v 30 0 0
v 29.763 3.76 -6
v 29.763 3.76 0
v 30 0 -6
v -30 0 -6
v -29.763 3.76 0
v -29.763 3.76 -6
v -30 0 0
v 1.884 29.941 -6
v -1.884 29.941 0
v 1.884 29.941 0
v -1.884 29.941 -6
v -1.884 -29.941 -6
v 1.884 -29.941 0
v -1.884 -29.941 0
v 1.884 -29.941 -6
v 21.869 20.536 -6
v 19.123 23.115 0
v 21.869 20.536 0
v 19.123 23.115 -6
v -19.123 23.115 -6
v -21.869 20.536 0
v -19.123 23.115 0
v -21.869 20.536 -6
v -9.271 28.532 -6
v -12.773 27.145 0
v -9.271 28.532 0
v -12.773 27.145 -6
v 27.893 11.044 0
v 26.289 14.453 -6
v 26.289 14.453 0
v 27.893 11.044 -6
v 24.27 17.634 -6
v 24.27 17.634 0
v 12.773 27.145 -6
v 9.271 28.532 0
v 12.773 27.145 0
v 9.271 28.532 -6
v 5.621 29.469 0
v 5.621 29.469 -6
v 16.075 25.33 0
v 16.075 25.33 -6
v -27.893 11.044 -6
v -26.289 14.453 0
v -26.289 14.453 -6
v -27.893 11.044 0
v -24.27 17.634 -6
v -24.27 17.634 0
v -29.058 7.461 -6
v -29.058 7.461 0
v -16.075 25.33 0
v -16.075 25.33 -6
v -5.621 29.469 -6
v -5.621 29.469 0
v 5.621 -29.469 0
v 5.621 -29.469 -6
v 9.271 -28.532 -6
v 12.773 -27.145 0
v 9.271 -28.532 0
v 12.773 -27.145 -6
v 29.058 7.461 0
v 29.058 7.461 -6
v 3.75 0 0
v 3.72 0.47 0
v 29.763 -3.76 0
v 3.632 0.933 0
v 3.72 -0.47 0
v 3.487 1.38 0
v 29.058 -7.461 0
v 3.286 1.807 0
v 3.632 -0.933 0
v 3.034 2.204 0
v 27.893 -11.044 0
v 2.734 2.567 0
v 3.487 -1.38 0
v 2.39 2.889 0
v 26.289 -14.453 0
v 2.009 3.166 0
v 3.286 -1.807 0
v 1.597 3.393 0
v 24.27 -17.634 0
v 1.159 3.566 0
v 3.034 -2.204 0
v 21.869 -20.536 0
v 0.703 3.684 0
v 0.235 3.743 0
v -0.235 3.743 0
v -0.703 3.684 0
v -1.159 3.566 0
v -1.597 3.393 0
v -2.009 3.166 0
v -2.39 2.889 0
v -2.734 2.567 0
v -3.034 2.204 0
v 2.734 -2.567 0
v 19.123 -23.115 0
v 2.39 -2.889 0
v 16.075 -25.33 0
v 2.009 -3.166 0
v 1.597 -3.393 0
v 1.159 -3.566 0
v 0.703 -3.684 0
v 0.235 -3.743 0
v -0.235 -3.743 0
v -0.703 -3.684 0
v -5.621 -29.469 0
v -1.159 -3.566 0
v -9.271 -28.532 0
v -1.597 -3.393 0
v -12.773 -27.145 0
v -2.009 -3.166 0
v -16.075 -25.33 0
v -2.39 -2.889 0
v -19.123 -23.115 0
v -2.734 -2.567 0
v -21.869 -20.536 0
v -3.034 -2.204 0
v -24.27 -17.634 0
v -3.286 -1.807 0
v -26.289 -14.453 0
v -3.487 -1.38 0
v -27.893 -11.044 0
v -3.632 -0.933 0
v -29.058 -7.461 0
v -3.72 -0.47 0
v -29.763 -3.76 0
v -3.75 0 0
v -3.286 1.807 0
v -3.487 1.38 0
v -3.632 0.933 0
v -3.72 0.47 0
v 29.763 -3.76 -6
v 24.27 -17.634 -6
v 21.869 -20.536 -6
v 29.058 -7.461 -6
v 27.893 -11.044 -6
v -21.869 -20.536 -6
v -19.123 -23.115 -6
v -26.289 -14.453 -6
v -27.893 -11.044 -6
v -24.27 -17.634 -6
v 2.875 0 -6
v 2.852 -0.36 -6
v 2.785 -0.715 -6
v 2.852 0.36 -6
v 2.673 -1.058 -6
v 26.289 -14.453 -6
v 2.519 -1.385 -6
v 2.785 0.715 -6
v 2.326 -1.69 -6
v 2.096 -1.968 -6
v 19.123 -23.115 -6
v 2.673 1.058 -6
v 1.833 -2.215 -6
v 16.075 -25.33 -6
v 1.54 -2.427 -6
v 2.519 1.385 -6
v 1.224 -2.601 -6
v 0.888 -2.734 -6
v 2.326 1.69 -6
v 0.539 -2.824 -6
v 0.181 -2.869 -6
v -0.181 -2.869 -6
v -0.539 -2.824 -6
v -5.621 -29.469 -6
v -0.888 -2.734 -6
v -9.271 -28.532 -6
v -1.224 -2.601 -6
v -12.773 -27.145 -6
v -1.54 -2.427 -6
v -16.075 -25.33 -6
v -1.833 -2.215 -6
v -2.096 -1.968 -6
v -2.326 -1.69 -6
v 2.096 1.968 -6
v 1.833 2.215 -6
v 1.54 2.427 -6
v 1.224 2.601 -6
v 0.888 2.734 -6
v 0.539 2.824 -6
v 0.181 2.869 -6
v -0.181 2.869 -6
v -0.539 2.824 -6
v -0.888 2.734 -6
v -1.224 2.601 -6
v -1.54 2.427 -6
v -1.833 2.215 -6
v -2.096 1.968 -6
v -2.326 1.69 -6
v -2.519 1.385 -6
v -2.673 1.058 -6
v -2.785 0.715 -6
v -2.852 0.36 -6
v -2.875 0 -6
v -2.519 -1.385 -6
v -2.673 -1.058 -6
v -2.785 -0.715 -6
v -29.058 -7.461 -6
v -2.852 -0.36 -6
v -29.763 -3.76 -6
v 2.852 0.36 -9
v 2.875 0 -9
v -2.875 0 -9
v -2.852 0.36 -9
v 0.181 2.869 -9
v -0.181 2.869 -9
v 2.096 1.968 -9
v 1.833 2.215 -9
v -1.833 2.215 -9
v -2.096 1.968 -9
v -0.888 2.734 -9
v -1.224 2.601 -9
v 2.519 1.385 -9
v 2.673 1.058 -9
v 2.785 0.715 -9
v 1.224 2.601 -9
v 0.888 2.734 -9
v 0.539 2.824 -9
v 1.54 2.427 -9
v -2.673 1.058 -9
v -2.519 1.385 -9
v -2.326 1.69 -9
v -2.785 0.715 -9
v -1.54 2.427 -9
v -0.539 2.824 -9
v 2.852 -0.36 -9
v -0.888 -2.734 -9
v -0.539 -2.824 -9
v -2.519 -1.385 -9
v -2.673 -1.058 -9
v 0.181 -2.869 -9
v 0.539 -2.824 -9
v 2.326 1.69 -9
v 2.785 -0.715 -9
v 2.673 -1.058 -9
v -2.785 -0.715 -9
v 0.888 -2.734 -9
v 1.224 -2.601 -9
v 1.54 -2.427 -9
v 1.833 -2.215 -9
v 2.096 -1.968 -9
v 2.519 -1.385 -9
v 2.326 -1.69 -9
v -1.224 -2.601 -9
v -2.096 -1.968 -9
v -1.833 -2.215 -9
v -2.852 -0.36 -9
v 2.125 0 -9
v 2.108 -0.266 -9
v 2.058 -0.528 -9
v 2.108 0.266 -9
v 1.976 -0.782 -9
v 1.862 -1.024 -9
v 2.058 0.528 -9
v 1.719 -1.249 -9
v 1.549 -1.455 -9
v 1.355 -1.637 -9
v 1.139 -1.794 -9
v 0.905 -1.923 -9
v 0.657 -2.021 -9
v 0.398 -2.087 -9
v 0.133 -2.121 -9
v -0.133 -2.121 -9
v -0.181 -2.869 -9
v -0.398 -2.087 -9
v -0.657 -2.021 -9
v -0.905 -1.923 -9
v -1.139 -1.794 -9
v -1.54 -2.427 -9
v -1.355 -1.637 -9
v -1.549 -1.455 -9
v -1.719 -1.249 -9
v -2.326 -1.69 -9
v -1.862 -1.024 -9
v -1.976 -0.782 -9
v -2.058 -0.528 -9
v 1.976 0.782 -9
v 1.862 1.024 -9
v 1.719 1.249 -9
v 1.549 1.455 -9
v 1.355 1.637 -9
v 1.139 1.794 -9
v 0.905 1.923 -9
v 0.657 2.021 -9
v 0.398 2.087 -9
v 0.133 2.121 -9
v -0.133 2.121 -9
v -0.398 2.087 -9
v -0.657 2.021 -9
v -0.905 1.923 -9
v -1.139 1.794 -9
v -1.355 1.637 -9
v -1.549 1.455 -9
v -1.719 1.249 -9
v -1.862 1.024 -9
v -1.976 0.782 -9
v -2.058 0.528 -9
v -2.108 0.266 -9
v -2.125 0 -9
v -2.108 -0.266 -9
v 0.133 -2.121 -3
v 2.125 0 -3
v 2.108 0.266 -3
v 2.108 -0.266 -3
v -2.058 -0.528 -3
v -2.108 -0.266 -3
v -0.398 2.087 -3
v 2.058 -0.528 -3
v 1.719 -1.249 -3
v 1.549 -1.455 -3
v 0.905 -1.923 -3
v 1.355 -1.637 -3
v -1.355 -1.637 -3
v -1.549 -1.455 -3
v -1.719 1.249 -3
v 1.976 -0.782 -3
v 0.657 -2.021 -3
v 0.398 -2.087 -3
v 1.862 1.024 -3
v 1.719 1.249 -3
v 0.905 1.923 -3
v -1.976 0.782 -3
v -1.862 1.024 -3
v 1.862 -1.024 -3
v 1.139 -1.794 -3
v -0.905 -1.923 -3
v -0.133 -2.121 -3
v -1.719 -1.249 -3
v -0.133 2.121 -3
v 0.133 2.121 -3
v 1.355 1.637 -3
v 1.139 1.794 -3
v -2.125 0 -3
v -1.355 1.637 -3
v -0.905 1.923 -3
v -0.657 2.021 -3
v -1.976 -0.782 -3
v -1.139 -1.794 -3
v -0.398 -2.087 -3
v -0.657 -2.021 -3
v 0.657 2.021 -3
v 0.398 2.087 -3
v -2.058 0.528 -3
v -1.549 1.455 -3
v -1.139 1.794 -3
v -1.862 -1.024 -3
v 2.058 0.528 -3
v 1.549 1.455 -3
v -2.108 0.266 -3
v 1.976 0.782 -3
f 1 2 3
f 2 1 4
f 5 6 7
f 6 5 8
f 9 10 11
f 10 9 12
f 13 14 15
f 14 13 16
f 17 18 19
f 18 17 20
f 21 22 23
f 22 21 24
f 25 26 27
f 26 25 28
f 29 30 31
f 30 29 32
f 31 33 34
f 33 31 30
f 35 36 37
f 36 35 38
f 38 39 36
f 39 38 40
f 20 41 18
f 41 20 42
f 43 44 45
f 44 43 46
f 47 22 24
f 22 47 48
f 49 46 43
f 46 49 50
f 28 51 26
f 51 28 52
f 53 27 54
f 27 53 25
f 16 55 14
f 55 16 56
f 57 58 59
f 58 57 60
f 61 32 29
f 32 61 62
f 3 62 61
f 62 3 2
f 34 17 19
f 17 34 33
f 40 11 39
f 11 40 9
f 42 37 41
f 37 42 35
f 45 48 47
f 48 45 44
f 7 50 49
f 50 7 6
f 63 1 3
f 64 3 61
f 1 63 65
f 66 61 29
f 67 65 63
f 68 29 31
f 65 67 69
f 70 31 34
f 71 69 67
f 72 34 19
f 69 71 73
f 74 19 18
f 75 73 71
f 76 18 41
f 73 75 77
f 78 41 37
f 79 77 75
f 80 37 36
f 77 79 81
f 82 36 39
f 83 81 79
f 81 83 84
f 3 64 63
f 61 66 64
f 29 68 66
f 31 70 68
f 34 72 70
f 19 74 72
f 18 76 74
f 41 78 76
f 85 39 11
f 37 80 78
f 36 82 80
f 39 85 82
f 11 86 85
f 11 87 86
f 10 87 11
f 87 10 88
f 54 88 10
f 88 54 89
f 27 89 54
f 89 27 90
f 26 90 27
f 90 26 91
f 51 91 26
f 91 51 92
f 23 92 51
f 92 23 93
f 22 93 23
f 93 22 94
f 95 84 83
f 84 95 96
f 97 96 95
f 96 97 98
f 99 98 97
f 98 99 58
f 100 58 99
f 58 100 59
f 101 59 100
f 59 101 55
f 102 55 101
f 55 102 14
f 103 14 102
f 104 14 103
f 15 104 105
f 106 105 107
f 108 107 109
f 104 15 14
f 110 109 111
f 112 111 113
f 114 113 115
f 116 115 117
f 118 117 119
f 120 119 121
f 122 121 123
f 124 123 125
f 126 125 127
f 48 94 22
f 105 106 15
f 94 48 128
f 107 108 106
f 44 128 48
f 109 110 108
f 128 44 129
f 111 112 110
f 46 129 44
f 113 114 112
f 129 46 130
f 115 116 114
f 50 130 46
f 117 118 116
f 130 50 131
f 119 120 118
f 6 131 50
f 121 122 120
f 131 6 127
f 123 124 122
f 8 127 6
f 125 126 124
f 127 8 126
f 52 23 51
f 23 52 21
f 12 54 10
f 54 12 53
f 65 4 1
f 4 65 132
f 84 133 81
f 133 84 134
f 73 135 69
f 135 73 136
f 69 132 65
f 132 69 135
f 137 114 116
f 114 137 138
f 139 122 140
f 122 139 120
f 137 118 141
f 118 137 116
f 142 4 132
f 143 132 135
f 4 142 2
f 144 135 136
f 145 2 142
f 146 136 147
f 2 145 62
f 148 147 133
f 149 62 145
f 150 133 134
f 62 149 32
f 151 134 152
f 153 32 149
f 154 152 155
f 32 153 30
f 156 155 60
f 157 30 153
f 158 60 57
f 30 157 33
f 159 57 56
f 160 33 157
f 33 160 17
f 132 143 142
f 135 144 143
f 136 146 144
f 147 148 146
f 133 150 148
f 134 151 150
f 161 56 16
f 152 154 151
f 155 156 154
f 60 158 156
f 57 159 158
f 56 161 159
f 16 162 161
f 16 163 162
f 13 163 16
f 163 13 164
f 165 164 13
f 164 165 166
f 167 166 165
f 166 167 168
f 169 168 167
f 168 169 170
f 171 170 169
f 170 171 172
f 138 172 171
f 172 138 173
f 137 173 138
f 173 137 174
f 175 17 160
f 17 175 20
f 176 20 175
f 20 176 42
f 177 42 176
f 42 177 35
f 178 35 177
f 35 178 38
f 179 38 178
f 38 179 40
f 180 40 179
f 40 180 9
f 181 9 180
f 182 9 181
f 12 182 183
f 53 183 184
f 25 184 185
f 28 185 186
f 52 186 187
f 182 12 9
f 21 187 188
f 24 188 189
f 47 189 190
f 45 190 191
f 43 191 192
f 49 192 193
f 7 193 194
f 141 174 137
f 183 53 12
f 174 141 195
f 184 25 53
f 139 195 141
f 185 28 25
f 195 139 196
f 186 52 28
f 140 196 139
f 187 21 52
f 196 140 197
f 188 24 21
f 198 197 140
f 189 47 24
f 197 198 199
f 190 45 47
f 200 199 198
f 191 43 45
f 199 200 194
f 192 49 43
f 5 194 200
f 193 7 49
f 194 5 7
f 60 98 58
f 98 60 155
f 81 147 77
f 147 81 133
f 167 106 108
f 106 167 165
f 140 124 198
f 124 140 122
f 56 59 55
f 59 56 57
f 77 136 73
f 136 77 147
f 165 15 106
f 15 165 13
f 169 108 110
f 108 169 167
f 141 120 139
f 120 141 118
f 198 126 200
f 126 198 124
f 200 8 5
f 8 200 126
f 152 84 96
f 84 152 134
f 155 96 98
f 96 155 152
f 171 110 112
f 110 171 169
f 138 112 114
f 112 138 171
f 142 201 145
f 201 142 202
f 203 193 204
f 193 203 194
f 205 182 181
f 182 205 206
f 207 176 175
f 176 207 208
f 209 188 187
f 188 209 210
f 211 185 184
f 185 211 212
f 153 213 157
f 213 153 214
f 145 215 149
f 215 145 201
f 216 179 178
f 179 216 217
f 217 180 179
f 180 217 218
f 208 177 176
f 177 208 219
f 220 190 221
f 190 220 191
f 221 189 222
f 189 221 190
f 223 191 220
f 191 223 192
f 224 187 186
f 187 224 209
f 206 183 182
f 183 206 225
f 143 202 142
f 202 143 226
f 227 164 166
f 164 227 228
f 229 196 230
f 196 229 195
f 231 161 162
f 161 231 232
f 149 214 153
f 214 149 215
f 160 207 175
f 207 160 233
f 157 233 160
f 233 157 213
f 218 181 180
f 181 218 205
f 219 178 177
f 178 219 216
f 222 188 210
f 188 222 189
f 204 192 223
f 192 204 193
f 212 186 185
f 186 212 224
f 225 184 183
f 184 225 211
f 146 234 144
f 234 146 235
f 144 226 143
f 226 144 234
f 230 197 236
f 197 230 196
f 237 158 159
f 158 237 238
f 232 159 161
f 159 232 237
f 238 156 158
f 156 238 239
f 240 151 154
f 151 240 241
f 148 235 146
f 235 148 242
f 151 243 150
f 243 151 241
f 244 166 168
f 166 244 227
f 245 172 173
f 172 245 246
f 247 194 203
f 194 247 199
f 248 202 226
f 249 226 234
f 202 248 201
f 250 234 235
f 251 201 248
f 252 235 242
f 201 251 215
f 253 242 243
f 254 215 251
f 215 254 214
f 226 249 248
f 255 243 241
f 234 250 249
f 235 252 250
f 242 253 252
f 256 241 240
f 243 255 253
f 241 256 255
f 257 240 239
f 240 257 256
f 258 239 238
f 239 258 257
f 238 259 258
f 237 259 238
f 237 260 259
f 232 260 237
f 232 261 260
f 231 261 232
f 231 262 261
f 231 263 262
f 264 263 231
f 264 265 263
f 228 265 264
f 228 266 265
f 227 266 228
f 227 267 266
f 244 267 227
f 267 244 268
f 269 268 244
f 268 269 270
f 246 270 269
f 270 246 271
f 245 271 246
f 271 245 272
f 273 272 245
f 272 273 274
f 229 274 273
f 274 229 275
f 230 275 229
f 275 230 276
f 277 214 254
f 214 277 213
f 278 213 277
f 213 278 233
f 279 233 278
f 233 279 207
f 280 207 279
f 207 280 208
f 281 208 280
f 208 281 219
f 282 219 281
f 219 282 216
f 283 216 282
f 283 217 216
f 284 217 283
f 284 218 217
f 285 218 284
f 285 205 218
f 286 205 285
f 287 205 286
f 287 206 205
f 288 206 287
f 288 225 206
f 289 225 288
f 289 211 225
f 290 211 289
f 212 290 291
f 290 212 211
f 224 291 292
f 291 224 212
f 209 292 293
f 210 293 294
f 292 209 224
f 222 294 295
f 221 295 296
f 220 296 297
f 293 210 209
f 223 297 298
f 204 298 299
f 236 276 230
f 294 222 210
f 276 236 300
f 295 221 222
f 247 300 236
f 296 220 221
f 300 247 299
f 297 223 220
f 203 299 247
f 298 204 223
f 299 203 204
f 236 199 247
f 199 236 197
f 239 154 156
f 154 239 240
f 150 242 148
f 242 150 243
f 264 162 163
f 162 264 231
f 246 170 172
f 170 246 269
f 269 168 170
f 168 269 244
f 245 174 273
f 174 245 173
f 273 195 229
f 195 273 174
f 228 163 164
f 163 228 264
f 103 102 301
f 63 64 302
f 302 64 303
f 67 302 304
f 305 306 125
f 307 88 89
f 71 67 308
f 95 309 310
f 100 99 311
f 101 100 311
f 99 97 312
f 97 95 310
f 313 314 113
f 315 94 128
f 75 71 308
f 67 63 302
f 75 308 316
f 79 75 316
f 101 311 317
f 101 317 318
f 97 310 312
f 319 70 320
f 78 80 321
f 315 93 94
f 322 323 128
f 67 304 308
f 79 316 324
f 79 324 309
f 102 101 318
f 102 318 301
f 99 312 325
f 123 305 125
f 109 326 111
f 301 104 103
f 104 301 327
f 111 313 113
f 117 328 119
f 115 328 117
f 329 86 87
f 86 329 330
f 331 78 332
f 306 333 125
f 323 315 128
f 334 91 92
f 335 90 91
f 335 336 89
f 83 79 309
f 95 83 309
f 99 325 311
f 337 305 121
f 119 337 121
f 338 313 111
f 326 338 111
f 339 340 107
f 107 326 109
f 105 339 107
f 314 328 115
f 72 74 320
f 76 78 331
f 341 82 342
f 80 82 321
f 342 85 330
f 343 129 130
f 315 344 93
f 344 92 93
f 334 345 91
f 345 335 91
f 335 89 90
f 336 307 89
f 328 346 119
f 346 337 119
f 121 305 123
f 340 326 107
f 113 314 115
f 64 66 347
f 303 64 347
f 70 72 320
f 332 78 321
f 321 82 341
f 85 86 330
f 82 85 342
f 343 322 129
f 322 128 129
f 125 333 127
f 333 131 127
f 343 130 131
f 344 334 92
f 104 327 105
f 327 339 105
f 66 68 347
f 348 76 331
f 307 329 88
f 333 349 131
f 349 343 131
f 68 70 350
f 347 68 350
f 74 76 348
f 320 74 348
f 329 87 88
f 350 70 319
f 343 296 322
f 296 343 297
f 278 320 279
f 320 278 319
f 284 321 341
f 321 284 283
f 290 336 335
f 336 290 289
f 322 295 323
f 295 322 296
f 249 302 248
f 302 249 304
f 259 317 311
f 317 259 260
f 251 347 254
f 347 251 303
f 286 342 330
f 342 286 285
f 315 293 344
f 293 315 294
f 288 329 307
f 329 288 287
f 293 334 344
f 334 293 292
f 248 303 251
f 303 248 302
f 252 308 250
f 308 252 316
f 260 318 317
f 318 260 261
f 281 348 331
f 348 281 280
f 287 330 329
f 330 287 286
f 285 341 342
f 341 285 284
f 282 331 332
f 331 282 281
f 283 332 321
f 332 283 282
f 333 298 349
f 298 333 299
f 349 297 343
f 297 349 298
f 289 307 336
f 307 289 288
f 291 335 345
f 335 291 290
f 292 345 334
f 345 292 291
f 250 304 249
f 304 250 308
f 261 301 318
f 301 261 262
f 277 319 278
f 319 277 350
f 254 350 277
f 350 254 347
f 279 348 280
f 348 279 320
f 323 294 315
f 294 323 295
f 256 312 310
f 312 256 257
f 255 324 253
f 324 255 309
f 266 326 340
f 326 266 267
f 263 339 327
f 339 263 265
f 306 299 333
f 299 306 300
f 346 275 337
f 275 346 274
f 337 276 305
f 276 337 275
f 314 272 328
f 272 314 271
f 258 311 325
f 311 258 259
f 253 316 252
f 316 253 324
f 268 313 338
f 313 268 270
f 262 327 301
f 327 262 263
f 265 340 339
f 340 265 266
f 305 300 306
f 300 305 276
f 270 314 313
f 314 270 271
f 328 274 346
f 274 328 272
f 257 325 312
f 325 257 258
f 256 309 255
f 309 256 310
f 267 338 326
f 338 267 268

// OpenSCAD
$fn = 50;


difference() {
	union() {
		translate(v = [0, 0, -6.0000000000]) {
			cylinder(h = 6, r = 30.0000000000);
		}
		translate(v = [0, 0, -9.0000000000]) {
			cylinder(h = 9, r = 2.8750000000);
		}
	}
	union() {
		translate(v = [0, 0, 0]) {
			rotate(a = [0, 0, 0]) {
				difference() {
					union() {
						translate(v = [0, 0, -9.0000000000]) {
							cylinder(h = 9, r = 2.0000000000);
						}
						translate(v = [0, 0, -3]) {
							cylinder(h = 3, r1 = 2.1250000000, r2 = 3.7500000000);
						}
						translate(v = [0, 0, -9.0000000000]) {
							cylinder(h = 9, r = 2.1250000000);
						}
						translate(v = [0, 0, -9.0000000000]) {
							cylinder(h = 9, r = 2.0000000000);
						}
					}
					union();
				}
			}
		}
	}
}
